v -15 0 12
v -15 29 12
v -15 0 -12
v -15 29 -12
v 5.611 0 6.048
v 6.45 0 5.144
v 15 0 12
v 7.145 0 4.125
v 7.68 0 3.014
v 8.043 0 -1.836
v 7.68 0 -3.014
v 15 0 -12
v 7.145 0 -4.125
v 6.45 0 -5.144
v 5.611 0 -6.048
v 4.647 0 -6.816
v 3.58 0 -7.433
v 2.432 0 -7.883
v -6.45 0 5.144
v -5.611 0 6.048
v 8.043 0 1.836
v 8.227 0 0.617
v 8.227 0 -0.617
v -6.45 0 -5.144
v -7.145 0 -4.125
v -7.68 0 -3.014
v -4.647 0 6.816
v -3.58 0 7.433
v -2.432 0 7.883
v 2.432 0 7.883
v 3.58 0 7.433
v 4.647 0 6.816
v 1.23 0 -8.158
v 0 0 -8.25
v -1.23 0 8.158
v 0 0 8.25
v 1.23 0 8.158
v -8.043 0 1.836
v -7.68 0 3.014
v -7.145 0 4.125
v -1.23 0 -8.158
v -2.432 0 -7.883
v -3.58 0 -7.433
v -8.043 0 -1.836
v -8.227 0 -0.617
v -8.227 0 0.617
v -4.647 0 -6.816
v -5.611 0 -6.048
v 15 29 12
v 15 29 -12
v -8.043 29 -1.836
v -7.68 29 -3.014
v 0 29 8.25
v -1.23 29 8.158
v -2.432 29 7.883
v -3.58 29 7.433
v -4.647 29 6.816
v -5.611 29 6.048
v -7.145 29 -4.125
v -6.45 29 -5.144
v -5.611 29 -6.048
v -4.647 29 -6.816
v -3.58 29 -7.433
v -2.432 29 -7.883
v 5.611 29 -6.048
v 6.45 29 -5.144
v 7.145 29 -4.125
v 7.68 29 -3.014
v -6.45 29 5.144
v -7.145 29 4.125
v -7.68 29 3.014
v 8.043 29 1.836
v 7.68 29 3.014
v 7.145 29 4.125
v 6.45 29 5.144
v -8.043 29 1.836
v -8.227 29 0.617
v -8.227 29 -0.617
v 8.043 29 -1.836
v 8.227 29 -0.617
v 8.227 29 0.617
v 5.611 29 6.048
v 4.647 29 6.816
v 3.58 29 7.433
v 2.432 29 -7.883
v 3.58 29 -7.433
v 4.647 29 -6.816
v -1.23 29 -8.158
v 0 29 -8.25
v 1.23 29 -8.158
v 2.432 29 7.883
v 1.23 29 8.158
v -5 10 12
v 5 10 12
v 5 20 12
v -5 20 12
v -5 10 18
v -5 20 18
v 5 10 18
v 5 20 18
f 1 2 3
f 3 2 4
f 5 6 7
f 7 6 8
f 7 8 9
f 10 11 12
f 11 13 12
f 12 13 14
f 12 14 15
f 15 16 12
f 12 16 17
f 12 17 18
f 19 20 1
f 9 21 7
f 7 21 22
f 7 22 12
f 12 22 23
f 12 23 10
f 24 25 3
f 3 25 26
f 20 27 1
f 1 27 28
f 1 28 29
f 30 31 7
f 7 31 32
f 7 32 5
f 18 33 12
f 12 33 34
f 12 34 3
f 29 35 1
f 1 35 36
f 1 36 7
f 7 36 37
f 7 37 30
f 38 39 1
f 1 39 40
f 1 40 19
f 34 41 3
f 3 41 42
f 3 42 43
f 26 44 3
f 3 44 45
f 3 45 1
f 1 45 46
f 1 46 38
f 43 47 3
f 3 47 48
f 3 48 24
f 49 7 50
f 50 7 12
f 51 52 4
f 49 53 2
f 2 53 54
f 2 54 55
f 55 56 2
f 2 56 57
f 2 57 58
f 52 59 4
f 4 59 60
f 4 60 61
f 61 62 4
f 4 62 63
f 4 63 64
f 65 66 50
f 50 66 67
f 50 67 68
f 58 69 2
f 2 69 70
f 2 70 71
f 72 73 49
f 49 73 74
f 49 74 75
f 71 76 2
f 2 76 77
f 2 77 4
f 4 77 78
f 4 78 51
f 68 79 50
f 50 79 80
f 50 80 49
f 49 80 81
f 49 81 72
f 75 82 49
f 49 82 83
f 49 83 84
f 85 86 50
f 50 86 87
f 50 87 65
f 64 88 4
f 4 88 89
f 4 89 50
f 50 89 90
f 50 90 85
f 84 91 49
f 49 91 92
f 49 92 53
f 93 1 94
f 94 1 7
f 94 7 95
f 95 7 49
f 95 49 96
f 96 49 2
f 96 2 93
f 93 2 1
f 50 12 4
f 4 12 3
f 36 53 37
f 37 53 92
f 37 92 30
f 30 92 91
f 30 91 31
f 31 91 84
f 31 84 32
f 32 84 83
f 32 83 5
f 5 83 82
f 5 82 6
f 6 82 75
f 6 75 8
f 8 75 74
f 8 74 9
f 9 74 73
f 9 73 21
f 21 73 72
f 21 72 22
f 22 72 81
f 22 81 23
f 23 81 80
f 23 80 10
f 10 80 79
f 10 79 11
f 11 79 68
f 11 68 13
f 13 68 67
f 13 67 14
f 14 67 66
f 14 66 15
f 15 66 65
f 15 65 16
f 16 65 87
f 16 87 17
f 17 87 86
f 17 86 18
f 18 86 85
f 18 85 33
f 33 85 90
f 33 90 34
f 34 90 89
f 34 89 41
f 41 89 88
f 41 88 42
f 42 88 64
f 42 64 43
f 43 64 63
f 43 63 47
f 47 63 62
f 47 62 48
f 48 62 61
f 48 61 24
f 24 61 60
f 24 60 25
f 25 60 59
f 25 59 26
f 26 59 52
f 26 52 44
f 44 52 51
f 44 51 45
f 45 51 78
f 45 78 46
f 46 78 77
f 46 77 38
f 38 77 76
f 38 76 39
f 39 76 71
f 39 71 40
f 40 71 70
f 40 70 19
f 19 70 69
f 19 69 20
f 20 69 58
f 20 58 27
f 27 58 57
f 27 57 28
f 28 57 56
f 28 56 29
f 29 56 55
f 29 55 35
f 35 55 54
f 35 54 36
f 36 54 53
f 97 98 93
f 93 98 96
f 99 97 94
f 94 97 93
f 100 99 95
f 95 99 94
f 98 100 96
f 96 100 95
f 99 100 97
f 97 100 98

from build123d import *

# Parameters (mm, degrees)
SKETCH1_W           = 30
SKETCH1_H           = 29
BOSS_EXTRUDE1_DEPTH = 12
SKETCH2_R           = 8.25
CUT_EXTRUDE1_DEPTH  = 34
BOSS_EXTRUDE2_START = 12
SKETCH3_W           = 10
SKETCH3_H           = 10
BOSS_EXTRUDE2_DEPTH = 6


with BuildPart() as part:
    # Sketch1 → Boss-Extrude1 (new, symmetric)
    with BuildSketch(Plane.XY):
        with Locations((0, 14.5)):
            Rectangle(SKETCH1_W, SKETCH1_H)
    extrude(amount=BOSS_EXTRUDE1_DEPTH, both=True)

    # Sketch2 → Cut-Extrude1 (cut, symmetric)
    with BuildSketch(Plane(origin=(0, 0, 0), x_dir=(1, 0, 0), z_dir=(0, 1, 0))):
        with Locations(Location((0, 0, 0), (0, 0, 270))):
            Circle(SKETCH2_R)
    extrude(amount=CUT_EXTRUDE1_DEPTH, both=True, mode=Mode.SUBTRACT)

    # Sketch3 → Boss-Extrude2 (add)
    with BuildSketch(Plane.XY.offset(BOSS_EXTRUDE2_START)):
        with Locations((0, 15)):
            Rectangle(SKETCH3_W, SKETCH3_H)
    extrude(amount=BOSS_EXTRUDE2_DEPTH)


solid = part.part
